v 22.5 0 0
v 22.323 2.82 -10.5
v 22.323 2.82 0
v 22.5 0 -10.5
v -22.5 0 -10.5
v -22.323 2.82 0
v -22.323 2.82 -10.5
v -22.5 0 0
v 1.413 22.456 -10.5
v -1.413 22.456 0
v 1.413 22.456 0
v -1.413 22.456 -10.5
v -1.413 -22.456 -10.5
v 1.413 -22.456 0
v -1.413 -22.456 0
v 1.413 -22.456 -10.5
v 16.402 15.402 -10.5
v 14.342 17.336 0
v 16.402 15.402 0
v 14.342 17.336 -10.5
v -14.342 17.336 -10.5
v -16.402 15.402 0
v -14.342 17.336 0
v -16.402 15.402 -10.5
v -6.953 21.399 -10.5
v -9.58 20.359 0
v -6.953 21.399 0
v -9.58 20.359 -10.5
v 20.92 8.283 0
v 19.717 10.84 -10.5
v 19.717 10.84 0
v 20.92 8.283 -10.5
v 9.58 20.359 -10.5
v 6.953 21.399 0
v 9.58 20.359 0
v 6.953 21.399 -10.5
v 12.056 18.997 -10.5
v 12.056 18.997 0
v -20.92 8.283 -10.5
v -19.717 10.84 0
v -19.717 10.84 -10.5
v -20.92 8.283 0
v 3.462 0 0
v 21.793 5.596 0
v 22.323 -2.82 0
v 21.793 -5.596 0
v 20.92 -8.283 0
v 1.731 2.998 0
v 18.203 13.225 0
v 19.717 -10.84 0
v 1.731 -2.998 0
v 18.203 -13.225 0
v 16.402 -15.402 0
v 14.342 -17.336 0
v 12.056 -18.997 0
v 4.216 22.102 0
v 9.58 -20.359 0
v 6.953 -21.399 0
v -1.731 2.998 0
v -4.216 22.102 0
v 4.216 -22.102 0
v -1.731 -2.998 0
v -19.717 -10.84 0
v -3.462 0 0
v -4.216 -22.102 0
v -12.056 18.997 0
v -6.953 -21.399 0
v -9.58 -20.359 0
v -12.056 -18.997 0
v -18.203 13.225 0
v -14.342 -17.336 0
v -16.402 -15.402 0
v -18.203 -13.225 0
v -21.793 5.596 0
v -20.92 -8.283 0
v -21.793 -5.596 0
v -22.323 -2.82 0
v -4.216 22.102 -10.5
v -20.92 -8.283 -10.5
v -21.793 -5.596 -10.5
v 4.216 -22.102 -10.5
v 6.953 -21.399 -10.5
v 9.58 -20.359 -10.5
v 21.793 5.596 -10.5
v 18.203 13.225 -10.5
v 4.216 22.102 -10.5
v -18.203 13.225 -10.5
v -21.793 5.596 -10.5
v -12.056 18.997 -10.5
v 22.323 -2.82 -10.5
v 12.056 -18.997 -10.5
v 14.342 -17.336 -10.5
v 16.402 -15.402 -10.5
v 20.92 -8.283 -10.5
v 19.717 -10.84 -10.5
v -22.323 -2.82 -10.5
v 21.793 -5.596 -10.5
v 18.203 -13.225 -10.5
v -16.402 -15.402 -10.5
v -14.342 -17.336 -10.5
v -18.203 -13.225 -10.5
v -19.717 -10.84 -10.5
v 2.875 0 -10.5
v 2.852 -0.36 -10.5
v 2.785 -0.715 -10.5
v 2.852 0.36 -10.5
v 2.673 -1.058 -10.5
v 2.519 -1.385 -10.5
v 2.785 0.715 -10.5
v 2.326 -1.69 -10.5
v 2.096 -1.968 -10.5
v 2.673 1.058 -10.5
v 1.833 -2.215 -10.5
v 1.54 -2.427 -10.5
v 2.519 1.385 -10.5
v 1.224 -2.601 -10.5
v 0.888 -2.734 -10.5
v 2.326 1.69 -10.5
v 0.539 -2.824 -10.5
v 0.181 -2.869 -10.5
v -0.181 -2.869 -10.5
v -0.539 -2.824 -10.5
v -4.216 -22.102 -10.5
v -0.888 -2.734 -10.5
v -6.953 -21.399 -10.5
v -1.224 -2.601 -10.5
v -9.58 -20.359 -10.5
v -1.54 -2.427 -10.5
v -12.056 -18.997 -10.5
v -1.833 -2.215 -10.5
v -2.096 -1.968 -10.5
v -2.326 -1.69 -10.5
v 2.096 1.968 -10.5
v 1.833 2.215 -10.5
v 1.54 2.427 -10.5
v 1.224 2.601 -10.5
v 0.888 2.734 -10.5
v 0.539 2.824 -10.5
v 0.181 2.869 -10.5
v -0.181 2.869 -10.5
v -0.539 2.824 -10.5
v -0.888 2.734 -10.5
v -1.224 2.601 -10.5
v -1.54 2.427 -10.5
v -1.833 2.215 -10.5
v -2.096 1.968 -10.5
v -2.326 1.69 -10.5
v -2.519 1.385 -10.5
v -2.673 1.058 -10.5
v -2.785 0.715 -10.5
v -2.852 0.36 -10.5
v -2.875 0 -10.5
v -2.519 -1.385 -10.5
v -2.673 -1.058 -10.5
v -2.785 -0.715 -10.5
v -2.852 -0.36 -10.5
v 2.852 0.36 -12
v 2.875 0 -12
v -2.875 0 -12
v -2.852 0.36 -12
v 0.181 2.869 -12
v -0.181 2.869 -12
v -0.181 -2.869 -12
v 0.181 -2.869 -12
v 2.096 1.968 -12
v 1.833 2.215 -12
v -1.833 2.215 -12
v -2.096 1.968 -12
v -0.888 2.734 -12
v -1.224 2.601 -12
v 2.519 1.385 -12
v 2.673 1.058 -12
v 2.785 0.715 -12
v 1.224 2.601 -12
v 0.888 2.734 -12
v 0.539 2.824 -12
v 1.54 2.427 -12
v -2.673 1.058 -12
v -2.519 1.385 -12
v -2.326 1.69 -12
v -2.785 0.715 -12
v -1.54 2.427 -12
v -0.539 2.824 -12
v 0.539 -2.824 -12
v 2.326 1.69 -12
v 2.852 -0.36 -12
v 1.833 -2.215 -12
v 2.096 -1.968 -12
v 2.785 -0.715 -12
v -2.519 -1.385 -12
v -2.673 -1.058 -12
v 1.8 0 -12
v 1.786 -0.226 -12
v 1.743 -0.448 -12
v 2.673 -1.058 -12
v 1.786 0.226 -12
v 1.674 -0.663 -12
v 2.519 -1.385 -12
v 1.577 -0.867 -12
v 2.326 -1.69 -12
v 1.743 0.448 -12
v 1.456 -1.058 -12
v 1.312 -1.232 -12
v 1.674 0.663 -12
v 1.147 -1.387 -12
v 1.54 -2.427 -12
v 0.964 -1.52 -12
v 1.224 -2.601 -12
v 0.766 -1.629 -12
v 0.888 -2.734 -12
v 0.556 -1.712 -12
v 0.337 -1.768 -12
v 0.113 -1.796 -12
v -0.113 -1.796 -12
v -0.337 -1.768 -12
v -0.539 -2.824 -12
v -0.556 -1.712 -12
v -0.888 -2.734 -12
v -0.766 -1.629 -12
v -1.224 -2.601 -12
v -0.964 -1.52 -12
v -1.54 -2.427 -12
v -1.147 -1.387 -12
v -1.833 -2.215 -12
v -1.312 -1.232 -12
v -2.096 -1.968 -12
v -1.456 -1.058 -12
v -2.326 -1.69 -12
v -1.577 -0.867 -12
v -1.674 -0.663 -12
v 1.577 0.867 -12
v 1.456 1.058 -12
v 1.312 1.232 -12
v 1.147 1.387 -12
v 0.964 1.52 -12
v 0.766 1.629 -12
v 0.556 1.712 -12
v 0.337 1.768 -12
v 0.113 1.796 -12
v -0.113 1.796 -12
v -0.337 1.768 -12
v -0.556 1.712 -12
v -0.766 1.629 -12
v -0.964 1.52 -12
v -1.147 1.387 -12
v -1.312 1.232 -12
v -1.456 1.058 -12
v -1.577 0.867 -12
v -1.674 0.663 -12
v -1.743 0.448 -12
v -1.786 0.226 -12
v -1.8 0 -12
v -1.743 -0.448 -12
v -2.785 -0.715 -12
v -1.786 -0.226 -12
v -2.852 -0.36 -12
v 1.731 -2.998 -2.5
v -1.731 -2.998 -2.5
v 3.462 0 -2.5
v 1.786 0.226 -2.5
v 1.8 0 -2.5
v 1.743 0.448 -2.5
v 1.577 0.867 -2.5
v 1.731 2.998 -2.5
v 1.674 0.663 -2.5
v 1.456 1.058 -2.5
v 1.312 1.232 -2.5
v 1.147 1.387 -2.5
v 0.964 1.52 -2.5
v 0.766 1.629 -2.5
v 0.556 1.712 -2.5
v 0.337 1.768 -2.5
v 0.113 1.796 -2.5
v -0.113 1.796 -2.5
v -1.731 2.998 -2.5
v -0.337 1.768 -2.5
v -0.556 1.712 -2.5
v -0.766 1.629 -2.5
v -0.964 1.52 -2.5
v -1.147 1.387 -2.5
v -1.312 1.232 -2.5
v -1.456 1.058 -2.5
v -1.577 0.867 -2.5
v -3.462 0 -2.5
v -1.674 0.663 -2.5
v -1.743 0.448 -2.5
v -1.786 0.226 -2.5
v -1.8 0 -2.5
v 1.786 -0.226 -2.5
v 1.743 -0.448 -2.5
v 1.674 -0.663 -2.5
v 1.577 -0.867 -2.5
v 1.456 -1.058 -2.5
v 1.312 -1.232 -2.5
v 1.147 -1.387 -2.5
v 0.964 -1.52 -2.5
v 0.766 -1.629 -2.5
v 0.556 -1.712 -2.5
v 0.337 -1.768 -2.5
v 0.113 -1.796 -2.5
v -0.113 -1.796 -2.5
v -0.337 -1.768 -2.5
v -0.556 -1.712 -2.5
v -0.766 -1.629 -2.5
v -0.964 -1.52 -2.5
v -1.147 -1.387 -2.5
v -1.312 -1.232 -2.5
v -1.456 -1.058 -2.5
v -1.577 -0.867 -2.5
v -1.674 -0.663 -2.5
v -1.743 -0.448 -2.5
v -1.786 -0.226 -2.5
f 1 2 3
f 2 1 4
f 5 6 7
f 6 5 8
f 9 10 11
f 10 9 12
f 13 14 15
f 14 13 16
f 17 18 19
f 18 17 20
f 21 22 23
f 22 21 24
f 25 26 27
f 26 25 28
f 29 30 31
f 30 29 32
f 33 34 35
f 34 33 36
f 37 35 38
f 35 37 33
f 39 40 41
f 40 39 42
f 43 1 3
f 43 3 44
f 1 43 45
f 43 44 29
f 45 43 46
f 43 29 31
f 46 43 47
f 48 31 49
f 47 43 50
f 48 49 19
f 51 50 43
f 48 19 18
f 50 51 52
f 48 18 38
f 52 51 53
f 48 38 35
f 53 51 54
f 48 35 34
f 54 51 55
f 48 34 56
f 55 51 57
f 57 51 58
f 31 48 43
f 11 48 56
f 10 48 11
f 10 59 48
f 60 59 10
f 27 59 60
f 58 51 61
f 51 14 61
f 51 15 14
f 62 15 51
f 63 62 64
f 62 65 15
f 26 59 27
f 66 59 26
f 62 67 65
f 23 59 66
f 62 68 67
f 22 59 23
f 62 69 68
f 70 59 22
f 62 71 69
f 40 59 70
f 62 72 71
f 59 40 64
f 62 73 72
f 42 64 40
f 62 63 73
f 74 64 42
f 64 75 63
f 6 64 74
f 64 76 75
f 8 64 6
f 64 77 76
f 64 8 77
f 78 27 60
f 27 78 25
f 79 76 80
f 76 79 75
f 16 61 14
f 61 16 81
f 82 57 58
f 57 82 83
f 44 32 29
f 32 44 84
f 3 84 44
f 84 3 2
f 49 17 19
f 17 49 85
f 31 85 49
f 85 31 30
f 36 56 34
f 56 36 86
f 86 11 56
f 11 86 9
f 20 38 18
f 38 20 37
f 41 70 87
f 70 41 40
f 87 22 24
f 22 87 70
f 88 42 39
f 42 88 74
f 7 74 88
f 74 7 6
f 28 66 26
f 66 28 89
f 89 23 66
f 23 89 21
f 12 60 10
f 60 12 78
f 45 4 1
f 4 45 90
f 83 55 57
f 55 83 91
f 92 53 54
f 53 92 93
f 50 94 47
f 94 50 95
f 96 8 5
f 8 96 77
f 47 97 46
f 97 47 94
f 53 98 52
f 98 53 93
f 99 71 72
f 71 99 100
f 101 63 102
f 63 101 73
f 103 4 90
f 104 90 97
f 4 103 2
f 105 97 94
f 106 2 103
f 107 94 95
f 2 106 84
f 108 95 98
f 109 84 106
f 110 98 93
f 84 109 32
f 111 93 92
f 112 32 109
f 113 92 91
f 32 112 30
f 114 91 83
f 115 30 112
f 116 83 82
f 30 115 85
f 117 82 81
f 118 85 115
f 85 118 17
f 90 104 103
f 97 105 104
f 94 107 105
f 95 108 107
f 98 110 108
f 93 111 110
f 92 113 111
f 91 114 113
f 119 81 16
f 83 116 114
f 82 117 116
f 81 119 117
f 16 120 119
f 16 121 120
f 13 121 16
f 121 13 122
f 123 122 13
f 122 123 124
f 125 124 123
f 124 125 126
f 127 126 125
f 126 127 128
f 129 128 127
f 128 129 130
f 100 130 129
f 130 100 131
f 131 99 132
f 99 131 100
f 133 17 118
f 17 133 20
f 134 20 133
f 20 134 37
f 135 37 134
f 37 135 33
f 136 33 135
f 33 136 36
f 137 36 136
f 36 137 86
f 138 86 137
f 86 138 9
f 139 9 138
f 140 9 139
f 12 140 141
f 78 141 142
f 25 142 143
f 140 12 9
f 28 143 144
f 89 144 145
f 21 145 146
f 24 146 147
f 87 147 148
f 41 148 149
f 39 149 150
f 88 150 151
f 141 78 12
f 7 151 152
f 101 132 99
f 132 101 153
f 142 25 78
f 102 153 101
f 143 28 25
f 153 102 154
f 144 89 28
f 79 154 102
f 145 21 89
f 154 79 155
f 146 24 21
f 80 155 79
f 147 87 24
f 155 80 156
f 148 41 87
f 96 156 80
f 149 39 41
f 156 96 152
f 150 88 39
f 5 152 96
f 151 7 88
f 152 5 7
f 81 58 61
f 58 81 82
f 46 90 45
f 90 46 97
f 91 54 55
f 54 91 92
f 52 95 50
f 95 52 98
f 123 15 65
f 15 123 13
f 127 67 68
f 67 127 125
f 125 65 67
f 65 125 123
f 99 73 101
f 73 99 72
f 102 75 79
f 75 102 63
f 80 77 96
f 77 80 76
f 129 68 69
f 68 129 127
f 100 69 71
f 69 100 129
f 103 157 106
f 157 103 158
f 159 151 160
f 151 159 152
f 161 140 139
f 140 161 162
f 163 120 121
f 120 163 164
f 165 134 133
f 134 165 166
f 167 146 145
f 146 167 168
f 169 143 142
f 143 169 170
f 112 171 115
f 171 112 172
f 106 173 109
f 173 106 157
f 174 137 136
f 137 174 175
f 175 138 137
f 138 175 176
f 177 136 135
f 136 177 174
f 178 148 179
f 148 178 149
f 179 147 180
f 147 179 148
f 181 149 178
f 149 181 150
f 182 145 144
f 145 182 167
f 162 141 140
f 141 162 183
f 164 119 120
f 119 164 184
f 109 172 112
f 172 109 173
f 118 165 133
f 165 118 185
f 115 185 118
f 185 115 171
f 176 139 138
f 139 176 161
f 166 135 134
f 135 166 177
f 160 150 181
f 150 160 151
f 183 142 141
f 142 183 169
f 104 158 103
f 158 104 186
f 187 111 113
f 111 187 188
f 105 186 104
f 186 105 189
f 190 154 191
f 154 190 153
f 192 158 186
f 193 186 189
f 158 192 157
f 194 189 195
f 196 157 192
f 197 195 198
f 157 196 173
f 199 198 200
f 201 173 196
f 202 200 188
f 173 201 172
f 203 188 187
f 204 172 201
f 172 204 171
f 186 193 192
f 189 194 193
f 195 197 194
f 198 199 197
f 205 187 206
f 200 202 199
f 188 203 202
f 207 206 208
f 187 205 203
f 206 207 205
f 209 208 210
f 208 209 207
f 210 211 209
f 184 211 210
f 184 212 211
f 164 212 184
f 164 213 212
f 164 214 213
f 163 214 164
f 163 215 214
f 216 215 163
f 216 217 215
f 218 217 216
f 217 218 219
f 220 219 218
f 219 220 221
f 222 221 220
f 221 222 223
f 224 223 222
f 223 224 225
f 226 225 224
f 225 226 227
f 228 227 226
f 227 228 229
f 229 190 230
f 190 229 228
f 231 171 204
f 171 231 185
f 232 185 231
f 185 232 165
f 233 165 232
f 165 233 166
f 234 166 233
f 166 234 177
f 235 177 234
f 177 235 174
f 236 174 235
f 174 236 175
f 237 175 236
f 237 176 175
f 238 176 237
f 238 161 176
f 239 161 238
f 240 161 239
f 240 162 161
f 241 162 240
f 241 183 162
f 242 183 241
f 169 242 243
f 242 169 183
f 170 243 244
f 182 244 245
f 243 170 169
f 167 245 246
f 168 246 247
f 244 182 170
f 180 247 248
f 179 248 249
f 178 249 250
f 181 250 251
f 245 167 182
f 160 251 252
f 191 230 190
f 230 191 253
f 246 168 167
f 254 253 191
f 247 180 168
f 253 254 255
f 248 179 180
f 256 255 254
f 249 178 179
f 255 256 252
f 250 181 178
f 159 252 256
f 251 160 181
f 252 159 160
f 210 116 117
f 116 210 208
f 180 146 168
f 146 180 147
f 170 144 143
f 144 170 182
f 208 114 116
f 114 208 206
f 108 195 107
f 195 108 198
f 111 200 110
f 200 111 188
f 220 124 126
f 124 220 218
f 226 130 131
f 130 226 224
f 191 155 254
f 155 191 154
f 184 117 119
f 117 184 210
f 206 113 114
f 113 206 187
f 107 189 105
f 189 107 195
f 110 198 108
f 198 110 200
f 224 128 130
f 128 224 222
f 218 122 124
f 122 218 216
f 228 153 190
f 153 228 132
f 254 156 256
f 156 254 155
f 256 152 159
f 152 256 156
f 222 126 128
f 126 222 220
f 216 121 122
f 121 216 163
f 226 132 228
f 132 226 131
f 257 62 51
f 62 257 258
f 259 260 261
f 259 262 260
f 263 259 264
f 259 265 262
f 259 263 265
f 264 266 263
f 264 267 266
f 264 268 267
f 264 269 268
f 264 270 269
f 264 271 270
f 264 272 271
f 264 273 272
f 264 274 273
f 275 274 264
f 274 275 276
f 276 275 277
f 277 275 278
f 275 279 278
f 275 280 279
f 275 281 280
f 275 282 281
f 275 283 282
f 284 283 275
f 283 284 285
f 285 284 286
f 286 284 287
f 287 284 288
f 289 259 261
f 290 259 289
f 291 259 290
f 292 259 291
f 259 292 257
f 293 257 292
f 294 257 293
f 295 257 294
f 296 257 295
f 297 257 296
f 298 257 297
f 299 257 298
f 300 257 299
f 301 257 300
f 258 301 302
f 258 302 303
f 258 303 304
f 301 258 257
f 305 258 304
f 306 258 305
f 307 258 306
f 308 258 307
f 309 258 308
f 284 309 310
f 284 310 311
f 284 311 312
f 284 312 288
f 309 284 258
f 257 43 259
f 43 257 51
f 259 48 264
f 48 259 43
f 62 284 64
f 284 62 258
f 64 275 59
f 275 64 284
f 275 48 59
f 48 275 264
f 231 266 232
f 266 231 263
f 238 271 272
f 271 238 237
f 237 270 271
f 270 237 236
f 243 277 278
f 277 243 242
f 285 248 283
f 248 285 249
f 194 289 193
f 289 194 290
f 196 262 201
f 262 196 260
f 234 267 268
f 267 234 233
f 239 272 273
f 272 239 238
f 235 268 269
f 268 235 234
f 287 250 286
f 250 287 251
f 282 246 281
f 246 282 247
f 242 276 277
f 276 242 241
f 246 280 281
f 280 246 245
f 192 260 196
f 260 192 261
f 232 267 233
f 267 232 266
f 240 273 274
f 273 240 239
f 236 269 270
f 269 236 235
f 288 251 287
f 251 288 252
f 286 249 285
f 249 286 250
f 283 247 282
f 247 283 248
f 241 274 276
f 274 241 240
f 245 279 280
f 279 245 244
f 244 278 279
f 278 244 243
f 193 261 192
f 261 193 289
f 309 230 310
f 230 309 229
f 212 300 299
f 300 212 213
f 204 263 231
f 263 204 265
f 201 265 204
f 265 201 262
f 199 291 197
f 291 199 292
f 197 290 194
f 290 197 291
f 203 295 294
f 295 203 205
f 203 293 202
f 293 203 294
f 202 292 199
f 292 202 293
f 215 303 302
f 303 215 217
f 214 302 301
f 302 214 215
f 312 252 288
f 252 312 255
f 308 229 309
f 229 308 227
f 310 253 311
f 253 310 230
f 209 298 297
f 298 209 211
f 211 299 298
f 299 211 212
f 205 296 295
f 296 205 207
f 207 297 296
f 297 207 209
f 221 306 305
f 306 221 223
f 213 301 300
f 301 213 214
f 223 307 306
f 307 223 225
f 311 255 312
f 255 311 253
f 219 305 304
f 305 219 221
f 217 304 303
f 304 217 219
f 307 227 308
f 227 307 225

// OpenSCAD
$fn = 50;


difference() {
	union() {
		translate(v = [0, 0, -10.5000000000]) {
			cylinder(h = 10.5000000000, r = 22.5000000000);
		}
		translate(v = [0, 0, -12.0000000000]) {
			cylinder(h = 12, r = 2.8750000000);
		}
	}
	union() {
		translate(v = [0, 0, 0]) {
			rotate(a = [0, 0, 0]) {
				difference() {
					union() {
						translate(v = [0, 0, -2.5000000000]) {
							linear_extrude(height = 2.5000000000) {
								polygon(points = [[3.4620000000, 0.0000000000], [1.7310000000, 2.9981799479], [-1.7310000000, 2.9981799479], [-3.4620000000, 0.0000000000], [-1.7310000000, -2.9981799479], [1.7310000000, -2.9981799479]]);
							}
						}
					}
					union();
				}
			}
		}
		#translate(v = [0, 0, -100.0000000000]) {
			cylinder(h = 200, r = 1.8000000000);
		}
	}
}
